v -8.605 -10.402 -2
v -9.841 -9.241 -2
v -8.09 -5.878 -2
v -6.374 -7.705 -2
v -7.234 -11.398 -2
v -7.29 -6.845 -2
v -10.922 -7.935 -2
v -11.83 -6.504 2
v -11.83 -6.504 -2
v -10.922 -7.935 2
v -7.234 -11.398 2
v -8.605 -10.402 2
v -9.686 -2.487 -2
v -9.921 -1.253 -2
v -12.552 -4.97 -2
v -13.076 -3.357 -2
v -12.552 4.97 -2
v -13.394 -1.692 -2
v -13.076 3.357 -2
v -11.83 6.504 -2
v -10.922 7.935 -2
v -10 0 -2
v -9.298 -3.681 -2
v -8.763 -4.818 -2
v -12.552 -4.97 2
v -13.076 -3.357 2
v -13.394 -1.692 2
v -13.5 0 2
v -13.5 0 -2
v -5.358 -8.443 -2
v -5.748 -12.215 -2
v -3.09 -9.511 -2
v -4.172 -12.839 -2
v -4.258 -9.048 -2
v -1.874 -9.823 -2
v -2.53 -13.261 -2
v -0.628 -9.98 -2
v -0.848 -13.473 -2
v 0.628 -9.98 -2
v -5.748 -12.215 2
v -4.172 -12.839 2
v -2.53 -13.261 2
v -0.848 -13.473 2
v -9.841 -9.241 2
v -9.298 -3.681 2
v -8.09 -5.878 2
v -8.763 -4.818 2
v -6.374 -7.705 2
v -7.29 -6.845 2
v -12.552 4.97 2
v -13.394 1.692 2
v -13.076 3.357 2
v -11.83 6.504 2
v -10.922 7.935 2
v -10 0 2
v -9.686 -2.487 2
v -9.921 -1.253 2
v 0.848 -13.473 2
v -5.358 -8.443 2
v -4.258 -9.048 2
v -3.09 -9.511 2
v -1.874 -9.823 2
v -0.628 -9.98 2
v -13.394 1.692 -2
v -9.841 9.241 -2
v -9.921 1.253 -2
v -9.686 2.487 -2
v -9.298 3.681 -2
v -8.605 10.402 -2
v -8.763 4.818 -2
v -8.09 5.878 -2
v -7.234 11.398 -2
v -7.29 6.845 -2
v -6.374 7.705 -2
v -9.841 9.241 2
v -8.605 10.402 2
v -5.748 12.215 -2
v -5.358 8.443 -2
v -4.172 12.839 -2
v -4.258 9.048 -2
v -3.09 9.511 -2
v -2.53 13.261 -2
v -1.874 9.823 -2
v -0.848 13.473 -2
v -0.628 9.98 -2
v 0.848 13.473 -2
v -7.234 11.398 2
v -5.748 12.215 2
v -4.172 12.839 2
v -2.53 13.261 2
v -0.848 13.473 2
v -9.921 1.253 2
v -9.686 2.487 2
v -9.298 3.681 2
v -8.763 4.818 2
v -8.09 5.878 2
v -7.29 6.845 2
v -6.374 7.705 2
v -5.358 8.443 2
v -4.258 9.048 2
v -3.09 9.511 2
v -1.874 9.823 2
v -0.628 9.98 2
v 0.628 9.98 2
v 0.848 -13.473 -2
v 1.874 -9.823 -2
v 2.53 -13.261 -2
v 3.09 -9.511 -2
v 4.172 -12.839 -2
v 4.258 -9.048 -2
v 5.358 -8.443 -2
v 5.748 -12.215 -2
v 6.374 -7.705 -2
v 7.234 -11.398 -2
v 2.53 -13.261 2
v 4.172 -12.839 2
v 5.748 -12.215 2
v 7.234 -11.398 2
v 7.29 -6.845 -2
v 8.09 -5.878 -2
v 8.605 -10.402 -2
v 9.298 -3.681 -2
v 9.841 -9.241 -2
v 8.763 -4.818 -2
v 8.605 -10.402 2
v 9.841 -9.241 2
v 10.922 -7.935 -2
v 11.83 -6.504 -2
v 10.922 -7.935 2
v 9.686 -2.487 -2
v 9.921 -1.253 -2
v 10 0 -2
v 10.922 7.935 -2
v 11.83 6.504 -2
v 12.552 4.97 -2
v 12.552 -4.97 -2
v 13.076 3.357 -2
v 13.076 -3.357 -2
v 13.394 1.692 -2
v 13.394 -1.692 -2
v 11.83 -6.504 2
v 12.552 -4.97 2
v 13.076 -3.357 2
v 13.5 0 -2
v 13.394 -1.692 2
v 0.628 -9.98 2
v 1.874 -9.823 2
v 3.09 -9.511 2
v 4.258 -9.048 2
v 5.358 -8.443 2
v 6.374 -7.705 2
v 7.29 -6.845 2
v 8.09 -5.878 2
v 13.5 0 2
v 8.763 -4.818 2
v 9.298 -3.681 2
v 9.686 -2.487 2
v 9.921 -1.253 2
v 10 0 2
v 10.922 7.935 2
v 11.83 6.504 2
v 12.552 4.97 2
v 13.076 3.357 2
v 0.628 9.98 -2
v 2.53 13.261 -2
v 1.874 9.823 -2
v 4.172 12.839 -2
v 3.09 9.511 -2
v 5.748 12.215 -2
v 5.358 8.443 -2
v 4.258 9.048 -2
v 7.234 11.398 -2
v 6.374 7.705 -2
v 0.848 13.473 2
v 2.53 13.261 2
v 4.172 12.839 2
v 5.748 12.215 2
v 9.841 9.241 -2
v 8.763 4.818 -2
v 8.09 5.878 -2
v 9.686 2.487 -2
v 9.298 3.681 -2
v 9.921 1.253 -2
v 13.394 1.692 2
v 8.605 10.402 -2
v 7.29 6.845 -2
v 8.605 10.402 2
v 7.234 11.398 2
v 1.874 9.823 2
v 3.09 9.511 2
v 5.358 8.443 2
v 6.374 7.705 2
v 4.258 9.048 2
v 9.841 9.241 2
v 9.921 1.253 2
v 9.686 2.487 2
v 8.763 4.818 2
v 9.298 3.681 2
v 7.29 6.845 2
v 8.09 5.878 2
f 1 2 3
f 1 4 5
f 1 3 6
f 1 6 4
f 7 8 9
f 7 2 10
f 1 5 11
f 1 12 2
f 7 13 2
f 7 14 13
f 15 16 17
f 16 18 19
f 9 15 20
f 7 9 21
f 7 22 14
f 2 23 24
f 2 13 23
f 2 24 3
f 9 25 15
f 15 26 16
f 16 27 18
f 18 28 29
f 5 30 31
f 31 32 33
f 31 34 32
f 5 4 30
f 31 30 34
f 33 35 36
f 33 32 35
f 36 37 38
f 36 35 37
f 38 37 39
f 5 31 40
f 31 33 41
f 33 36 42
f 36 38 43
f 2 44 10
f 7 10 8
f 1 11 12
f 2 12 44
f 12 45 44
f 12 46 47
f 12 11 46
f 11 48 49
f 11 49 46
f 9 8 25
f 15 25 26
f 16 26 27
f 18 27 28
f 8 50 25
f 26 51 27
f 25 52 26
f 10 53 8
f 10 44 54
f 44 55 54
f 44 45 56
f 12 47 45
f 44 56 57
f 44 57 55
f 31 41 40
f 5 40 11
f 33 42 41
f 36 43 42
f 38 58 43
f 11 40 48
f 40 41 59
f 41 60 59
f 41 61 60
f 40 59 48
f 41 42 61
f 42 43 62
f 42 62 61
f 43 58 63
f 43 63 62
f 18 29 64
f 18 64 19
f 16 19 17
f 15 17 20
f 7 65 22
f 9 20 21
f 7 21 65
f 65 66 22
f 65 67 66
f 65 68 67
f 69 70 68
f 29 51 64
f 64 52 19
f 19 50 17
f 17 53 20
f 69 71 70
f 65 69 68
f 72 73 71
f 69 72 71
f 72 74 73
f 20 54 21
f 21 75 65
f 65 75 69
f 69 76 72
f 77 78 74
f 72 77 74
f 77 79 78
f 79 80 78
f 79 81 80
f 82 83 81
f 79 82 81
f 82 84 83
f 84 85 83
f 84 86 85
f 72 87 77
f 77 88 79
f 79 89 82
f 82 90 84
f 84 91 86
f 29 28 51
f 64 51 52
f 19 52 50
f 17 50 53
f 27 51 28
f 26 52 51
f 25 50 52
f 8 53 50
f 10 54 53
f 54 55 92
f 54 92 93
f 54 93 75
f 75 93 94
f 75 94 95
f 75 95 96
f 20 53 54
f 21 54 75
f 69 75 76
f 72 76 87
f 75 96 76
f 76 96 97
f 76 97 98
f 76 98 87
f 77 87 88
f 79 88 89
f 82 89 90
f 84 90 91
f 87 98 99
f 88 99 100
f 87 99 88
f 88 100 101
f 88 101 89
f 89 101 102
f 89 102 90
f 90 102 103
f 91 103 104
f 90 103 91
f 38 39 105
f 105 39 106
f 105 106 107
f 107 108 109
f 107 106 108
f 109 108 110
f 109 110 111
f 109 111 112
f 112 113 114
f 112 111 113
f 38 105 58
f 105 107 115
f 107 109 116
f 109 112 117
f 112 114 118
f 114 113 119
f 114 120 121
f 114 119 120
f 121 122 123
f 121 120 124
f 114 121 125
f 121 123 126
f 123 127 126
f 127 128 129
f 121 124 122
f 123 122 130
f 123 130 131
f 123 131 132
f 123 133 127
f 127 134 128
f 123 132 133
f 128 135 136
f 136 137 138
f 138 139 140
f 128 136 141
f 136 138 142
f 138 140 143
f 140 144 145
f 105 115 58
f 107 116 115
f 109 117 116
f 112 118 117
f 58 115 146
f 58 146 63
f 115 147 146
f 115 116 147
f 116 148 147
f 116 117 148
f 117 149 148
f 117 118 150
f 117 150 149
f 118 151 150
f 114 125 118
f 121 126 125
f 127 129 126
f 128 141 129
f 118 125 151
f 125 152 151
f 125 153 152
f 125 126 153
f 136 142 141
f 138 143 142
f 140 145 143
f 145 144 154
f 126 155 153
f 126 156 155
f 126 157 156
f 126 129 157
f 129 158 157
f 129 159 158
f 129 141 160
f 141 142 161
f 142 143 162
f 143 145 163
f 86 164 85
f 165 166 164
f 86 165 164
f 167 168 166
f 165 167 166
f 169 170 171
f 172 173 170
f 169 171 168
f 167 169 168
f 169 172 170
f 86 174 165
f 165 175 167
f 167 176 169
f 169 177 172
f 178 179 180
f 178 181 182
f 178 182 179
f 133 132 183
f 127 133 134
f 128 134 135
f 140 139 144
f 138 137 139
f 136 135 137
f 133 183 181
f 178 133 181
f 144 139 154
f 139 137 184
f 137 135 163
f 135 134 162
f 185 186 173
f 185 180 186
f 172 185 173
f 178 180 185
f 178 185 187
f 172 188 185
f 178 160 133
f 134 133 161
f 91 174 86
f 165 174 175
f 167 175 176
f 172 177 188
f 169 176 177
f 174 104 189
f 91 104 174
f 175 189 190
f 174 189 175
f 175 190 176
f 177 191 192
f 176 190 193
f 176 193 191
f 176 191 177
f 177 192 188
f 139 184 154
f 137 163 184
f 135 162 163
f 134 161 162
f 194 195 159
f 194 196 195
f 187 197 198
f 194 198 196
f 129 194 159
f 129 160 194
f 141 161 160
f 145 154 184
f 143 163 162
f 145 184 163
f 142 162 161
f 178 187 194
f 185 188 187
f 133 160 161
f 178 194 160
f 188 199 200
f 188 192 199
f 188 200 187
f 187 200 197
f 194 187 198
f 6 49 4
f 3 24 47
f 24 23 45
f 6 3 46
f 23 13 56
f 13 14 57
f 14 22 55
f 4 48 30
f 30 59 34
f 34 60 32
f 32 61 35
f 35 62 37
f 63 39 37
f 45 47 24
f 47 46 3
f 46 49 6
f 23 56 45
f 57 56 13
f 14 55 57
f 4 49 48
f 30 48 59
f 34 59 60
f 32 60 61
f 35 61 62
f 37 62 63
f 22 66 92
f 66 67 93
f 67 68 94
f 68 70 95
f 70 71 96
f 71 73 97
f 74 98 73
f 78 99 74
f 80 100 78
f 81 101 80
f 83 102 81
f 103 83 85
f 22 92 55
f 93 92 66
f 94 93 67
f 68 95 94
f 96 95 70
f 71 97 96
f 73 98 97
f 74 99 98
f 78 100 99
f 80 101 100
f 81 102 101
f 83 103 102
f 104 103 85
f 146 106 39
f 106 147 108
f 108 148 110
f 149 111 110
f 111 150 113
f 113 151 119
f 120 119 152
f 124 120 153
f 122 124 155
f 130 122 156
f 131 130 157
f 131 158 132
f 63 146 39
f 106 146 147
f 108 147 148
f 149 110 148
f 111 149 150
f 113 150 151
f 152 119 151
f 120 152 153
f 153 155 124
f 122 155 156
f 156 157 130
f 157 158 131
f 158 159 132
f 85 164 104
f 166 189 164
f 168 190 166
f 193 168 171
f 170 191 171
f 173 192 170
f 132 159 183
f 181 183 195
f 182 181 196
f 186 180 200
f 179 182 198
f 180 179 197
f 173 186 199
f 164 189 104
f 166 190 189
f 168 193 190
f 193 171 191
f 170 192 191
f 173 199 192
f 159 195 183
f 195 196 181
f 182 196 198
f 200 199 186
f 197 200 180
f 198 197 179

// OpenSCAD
$fn = 50;

difference() {
	union() {
		translate(v = [0, 0, 0]) {
			rotate(a = [0, 0, 0]) {
				difference() {
					union() {
						translate(v = [0, 0, -2.0]) {
							cylinder(h = 4, r = 13.5);
						}
					}
					union() {
						translate(v = [0, 0, -2.01]) {
							cylinder(h = 4.02, r = 10.0);
						}
					}
				}
			}
		}
	}
	union();
}
